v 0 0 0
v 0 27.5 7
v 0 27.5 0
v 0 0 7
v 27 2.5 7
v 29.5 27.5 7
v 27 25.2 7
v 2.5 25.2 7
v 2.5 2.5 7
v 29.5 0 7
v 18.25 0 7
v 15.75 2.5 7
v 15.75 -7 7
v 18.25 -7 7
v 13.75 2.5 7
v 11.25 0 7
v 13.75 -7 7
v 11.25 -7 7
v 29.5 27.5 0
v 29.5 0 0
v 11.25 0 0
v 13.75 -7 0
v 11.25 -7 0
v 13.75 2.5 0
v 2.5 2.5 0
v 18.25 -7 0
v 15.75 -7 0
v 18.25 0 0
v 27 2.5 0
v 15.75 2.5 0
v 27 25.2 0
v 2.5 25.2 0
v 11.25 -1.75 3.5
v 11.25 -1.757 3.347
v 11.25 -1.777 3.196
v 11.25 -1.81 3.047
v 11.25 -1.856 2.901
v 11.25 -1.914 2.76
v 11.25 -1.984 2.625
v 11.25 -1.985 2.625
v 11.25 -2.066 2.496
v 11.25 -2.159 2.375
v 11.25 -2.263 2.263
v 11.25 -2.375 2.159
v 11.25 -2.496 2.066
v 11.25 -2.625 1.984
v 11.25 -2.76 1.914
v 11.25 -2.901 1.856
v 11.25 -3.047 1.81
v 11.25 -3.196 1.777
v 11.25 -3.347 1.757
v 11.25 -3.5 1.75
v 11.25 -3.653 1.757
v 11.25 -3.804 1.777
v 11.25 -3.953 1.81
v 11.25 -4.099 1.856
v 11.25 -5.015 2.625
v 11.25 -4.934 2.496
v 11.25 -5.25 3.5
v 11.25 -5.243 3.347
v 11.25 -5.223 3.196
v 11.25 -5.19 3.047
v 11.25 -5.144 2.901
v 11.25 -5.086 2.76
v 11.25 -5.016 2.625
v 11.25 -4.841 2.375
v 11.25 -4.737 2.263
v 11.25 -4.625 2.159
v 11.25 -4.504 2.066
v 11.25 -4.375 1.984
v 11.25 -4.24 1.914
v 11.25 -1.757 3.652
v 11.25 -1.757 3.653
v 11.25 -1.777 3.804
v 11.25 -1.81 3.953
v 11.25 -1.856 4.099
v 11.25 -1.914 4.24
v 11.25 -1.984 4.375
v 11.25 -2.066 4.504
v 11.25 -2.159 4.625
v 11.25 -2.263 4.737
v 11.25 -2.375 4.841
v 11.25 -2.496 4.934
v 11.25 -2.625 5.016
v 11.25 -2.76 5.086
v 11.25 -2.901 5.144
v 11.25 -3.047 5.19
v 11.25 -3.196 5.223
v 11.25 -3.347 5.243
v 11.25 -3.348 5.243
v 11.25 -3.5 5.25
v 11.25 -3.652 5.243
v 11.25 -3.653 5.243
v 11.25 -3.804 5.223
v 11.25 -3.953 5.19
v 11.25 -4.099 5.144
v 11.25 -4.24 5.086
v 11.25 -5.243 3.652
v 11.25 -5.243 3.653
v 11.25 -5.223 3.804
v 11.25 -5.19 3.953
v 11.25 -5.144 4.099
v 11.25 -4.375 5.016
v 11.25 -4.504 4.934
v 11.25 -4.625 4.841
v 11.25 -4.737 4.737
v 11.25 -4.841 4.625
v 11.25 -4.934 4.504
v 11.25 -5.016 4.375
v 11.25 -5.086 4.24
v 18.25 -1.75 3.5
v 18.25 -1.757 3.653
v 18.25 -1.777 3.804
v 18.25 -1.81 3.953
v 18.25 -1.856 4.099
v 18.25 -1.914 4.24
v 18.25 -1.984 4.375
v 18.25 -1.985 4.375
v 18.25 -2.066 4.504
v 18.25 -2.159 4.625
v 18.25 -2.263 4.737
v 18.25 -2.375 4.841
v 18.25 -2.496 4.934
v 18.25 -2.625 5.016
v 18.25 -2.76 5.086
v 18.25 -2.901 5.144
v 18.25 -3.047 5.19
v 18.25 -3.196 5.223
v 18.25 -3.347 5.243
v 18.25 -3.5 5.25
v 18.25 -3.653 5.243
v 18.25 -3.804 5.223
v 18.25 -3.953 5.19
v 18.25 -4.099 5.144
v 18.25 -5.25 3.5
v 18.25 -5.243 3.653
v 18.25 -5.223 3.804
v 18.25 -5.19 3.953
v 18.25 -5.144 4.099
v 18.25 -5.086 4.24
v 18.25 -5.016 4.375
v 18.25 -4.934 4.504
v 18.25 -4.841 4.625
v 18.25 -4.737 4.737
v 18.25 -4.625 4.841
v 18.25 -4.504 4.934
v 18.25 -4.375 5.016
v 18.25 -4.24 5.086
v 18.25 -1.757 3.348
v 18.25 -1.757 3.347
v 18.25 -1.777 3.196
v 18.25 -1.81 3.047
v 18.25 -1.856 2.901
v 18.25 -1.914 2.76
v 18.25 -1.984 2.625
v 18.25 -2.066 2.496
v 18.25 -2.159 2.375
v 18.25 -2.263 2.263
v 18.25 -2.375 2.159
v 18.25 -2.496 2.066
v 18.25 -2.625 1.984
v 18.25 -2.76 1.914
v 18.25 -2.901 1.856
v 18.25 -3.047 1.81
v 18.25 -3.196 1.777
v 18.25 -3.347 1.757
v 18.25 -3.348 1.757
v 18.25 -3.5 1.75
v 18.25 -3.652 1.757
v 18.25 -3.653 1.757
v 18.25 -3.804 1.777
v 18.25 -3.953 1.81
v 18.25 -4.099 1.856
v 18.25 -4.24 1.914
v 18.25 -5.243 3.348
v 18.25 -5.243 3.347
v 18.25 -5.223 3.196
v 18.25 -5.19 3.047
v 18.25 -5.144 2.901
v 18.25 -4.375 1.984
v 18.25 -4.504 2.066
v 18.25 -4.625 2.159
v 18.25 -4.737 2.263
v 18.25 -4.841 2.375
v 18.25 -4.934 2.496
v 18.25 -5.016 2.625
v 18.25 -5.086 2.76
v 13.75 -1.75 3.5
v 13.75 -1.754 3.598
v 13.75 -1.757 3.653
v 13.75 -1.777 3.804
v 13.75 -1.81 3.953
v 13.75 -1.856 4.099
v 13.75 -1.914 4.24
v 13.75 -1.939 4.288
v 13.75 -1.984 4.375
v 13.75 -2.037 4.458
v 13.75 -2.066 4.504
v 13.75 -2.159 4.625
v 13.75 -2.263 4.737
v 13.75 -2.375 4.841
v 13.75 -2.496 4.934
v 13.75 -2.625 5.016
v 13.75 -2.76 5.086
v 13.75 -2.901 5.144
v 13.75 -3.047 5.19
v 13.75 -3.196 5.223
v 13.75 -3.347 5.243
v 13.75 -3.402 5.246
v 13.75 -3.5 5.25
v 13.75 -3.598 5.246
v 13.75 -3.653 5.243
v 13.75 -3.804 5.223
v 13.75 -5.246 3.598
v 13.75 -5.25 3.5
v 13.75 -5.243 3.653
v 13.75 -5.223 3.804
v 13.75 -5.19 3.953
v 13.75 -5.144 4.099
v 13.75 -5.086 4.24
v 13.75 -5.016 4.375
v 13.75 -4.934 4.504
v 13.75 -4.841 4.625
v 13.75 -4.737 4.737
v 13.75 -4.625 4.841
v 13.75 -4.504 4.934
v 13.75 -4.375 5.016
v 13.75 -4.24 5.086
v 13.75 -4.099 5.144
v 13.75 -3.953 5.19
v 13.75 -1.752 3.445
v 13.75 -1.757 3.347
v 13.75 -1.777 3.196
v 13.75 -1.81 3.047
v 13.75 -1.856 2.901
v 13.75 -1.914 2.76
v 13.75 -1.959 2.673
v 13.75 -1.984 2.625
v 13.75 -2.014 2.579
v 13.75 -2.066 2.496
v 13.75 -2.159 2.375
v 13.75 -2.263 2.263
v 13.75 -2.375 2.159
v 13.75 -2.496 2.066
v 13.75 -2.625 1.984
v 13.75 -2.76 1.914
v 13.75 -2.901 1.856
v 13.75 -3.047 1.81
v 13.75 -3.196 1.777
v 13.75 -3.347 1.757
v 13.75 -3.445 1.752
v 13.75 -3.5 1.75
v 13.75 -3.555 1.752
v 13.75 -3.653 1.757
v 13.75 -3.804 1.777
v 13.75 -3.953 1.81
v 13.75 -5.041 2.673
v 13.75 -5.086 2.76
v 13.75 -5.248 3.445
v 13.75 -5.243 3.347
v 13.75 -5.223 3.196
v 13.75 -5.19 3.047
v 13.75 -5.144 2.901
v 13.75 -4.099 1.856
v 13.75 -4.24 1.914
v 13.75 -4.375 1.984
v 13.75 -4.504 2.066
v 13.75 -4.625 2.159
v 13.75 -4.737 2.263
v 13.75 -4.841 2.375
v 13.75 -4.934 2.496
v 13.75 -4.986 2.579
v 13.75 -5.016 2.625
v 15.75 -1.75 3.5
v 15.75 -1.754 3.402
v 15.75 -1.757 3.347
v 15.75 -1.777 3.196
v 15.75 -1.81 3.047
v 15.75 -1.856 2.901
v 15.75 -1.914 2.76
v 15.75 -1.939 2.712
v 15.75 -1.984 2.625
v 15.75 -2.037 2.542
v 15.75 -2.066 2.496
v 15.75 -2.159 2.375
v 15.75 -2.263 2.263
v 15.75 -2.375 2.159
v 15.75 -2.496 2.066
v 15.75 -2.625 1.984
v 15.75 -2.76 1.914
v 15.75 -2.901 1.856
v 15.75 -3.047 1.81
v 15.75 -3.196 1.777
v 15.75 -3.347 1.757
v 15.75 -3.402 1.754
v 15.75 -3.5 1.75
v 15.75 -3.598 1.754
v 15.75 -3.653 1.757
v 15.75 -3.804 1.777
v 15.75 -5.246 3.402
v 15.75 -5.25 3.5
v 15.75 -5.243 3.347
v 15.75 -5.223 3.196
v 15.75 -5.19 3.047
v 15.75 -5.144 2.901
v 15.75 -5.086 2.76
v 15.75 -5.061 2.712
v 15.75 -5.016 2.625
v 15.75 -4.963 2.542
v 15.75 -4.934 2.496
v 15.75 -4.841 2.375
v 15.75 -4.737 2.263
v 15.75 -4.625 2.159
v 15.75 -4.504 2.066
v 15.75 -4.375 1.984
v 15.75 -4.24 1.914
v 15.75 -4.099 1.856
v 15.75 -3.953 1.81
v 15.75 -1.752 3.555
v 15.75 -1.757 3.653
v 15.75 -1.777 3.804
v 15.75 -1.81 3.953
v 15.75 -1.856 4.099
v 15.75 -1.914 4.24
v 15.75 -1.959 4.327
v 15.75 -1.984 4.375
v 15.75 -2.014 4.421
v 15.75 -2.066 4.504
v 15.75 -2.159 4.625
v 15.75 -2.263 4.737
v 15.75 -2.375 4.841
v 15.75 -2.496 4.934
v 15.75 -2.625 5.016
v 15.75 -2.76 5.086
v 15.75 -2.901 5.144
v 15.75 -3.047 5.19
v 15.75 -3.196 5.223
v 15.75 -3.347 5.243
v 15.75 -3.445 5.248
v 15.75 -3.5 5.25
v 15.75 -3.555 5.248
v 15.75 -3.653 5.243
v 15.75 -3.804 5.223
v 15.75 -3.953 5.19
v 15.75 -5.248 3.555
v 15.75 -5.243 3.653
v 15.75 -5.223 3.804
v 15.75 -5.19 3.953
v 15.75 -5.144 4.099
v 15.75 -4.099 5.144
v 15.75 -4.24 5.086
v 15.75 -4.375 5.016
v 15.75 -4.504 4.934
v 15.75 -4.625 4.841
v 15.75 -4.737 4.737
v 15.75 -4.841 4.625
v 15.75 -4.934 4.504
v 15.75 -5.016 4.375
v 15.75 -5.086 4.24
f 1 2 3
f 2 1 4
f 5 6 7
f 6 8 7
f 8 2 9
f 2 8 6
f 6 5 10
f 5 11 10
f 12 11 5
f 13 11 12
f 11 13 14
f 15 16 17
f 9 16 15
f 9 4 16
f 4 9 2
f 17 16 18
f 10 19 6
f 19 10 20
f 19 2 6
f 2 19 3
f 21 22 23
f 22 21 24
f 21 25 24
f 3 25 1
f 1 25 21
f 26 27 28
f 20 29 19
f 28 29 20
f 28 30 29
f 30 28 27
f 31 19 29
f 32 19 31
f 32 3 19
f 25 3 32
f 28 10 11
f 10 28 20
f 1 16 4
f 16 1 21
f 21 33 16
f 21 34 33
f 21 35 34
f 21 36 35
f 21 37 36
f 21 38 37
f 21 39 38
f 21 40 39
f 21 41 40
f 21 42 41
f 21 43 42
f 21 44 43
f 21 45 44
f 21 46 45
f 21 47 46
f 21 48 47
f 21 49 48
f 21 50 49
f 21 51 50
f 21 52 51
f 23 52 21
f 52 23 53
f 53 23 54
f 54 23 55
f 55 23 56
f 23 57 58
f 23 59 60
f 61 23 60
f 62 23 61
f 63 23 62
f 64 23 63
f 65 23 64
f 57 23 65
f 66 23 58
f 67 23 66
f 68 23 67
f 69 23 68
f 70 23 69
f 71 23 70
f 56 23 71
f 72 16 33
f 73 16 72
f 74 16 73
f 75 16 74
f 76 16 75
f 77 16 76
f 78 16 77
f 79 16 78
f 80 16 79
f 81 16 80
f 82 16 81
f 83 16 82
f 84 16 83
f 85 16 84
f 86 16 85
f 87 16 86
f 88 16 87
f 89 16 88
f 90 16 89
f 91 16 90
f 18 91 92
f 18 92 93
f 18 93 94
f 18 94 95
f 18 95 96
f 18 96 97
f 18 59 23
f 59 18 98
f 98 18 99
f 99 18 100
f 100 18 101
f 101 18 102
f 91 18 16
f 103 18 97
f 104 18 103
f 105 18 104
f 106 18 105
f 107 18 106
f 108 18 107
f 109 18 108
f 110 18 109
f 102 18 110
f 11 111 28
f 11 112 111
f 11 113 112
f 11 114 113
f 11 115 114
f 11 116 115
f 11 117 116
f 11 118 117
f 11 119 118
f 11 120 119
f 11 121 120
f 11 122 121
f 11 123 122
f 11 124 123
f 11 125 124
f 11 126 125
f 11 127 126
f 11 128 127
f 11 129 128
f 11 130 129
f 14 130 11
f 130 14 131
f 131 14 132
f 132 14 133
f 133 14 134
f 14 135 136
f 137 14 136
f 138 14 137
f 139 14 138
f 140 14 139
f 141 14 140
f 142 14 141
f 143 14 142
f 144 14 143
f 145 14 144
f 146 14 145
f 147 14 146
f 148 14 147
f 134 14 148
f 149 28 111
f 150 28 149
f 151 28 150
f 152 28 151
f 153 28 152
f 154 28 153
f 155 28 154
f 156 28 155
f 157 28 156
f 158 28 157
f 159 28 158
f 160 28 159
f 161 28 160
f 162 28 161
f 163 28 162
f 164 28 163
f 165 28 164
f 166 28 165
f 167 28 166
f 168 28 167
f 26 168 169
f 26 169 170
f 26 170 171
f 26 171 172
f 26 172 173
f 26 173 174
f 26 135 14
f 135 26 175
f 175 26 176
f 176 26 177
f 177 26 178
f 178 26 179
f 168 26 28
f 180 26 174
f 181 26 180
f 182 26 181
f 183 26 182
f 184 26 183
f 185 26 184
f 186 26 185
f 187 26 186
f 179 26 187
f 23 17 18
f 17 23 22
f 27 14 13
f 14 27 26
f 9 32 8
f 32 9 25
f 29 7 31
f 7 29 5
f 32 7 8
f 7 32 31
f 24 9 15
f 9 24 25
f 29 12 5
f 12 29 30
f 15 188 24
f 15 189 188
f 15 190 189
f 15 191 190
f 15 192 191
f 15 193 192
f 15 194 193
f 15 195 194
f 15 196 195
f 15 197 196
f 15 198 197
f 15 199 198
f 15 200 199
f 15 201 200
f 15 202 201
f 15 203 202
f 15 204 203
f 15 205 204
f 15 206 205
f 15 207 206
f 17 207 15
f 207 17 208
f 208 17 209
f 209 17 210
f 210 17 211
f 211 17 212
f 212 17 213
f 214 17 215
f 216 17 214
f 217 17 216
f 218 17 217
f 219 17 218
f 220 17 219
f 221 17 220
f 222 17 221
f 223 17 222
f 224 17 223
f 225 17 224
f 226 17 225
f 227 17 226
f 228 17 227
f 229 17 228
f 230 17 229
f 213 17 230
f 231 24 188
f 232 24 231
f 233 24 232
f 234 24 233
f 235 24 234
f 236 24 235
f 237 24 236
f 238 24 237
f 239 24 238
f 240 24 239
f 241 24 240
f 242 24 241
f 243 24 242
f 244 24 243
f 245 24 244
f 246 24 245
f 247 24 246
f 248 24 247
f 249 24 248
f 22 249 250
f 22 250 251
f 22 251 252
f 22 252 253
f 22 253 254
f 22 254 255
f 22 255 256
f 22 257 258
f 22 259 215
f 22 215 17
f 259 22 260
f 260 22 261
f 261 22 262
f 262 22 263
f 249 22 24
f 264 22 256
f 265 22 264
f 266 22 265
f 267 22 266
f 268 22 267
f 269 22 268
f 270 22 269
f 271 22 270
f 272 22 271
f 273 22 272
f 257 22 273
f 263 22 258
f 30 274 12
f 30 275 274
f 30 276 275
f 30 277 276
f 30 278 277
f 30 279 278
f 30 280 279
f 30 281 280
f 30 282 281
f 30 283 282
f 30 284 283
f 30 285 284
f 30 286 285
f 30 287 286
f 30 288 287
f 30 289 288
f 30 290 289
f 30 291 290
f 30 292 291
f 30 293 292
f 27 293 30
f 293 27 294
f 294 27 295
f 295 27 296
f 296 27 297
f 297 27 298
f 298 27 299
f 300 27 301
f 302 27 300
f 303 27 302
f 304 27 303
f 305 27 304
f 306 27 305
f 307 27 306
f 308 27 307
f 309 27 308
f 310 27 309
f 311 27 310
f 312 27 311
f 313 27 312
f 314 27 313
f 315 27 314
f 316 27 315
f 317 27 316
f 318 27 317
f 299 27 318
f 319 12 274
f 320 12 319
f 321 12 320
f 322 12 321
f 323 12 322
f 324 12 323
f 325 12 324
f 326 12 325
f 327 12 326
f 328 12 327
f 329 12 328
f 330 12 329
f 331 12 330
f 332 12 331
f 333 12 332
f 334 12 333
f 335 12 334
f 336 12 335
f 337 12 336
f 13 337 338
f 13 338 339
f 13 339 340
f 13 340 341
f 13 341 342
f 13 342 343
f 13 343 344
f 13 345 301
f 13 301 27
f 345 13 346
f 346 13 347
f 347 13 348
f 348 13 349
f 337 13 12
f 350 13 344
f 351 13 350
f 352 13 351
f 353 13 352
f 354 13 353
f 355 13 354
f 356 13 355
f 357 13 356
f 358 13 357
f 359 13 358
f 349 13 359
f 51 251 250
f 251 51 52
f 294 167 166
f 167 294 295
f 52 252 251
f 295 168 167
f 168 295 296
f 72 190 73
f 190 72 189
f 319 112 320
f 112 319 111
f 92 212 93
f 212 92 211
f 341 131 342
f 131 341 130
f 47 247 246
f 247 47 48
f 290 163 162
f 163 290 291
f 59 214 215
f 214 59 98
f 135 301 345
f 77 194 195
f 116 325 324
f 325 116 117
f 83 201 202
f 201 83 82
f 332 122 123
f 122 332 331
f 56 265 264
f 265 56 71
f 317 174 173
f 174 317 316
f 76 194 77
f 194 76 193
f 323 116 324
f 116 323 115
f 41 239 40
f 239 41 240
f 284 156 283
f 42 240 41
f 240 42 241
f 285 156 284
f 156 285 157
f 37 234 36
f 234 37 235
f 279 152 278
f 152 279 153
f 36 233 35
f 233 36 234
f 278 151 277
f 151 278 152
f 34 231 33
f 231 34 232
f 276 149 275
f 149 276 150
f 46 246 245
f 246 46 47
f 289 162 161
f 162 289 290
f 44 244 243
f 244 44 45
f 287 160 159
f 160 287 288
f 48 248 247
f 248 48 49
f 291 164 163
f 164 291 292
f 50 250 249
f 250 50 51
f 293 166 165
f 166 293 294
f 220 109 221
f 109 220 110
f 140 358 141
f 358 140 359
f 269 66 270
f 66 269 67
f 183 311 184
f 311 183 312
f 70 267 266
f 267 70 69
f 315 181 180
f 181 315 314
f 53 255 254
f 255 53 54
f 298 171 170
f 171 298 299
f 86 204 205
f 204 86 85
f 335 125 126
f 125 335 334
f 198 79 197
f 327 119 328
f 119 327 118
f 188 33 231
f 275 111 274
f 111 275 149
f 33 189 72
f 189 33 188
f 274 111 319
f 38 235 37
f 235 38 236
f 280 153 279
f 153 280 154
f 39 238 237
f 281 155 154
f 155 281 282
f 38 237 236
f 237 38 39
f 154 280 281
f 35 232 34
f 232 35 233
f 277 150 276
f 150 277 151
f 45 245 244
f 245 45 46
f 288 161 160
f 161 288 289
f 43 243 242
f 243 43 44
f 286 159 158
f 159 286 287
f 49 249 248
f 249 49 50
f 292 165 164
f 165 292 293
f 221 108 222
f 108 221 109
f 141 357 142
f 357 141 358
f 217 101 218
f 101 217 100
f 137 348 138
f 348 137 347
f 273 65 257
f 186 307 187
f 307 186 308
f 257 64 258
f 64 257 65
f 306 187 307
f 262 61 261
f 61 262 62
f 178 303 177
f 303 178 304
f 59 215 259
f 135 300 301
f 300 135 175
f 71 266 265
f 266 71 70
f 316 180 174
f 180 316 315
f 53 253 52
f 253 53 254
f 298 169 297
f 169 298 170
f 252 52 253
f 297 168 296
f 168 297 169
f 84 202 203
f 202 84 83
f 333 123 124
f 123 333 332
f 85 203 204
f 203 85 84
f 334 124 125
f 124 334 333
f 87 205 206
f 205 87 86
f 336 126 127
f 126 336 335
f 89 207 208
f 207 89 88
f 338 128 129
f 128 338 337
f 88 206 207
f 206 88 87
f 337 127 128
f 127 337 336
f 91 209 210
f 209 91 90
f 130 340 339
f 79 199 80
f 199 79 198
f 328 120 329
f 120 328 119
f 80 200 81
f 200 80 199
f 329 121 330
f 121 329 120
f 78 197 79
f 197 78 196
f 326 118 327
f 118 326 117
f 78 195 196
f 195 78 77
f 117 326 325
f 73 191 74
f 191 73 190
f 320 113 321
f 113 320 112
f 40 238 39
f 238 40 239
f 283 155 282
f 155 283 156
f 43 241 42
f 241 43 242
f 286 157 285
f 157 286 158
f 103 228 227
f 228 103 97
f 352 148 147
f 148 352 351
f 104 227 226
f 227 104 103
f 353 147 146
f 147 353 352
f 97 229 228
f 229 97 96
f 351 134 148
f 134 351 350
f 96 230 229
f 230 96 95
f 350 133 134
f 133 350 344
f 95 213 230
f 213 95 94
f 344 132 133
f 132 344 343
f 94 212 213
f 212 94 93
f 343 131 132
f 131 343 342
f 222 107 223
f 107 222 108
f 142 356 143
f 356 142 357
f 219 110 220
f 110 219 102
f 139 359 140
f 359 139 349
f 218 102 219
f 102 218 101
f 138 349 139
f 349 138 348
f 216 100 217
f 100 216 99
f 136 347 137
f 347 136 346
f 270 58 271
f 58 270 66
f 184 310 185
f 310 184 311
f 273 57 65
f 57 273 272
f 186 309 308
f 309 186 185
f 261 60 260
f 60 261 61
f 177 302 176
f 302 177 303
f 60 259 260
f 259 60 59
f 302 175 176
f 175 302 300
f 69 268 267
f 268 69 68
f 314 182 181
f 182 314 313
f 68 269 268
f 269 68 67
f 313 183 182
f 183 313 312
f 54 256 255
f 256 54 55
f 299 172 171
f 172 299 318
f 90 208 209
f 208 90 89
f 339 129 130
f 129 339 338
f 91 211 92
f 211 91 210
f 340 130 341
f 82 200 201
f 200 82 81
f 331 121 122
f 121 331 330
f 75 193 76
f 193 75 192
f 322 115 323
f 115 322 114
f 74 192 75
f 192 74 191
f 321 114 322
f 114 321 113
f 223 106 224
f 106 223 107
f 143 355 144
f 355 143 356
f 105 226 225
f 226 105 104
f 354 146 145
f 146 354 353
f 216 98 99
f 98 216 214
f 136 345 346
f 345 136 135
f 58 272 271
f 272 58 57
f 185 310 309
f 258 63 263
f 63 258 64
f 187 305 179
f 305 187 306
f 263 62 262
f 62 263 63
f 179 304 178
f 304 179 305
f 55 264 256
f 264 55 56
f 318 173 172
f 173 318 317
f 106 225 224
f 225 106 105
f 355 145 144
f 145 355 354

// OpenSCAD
// servos 1-2 mount

$fa=5; $fs=0.1;

difference(){
    
    union()
    {
        cube([29.5,27.5,7]);
        translate([11.25, -7, 0]) cube([7, 7, 7]);
    }

    union()
    {
        translate([2.5, 2.5, -0.01]) cube([24.5, 22.7, 7.02]);
        translate([13.75, -7.01, -0.01]) cube([2, 10.02, 7.02]);
        
        translate([14.75, -3.5, 3.5])
            rotate([0, 90, 0]) cylinder(h = 7.02, r = 1.75, center=true);
    }
    
    
}
